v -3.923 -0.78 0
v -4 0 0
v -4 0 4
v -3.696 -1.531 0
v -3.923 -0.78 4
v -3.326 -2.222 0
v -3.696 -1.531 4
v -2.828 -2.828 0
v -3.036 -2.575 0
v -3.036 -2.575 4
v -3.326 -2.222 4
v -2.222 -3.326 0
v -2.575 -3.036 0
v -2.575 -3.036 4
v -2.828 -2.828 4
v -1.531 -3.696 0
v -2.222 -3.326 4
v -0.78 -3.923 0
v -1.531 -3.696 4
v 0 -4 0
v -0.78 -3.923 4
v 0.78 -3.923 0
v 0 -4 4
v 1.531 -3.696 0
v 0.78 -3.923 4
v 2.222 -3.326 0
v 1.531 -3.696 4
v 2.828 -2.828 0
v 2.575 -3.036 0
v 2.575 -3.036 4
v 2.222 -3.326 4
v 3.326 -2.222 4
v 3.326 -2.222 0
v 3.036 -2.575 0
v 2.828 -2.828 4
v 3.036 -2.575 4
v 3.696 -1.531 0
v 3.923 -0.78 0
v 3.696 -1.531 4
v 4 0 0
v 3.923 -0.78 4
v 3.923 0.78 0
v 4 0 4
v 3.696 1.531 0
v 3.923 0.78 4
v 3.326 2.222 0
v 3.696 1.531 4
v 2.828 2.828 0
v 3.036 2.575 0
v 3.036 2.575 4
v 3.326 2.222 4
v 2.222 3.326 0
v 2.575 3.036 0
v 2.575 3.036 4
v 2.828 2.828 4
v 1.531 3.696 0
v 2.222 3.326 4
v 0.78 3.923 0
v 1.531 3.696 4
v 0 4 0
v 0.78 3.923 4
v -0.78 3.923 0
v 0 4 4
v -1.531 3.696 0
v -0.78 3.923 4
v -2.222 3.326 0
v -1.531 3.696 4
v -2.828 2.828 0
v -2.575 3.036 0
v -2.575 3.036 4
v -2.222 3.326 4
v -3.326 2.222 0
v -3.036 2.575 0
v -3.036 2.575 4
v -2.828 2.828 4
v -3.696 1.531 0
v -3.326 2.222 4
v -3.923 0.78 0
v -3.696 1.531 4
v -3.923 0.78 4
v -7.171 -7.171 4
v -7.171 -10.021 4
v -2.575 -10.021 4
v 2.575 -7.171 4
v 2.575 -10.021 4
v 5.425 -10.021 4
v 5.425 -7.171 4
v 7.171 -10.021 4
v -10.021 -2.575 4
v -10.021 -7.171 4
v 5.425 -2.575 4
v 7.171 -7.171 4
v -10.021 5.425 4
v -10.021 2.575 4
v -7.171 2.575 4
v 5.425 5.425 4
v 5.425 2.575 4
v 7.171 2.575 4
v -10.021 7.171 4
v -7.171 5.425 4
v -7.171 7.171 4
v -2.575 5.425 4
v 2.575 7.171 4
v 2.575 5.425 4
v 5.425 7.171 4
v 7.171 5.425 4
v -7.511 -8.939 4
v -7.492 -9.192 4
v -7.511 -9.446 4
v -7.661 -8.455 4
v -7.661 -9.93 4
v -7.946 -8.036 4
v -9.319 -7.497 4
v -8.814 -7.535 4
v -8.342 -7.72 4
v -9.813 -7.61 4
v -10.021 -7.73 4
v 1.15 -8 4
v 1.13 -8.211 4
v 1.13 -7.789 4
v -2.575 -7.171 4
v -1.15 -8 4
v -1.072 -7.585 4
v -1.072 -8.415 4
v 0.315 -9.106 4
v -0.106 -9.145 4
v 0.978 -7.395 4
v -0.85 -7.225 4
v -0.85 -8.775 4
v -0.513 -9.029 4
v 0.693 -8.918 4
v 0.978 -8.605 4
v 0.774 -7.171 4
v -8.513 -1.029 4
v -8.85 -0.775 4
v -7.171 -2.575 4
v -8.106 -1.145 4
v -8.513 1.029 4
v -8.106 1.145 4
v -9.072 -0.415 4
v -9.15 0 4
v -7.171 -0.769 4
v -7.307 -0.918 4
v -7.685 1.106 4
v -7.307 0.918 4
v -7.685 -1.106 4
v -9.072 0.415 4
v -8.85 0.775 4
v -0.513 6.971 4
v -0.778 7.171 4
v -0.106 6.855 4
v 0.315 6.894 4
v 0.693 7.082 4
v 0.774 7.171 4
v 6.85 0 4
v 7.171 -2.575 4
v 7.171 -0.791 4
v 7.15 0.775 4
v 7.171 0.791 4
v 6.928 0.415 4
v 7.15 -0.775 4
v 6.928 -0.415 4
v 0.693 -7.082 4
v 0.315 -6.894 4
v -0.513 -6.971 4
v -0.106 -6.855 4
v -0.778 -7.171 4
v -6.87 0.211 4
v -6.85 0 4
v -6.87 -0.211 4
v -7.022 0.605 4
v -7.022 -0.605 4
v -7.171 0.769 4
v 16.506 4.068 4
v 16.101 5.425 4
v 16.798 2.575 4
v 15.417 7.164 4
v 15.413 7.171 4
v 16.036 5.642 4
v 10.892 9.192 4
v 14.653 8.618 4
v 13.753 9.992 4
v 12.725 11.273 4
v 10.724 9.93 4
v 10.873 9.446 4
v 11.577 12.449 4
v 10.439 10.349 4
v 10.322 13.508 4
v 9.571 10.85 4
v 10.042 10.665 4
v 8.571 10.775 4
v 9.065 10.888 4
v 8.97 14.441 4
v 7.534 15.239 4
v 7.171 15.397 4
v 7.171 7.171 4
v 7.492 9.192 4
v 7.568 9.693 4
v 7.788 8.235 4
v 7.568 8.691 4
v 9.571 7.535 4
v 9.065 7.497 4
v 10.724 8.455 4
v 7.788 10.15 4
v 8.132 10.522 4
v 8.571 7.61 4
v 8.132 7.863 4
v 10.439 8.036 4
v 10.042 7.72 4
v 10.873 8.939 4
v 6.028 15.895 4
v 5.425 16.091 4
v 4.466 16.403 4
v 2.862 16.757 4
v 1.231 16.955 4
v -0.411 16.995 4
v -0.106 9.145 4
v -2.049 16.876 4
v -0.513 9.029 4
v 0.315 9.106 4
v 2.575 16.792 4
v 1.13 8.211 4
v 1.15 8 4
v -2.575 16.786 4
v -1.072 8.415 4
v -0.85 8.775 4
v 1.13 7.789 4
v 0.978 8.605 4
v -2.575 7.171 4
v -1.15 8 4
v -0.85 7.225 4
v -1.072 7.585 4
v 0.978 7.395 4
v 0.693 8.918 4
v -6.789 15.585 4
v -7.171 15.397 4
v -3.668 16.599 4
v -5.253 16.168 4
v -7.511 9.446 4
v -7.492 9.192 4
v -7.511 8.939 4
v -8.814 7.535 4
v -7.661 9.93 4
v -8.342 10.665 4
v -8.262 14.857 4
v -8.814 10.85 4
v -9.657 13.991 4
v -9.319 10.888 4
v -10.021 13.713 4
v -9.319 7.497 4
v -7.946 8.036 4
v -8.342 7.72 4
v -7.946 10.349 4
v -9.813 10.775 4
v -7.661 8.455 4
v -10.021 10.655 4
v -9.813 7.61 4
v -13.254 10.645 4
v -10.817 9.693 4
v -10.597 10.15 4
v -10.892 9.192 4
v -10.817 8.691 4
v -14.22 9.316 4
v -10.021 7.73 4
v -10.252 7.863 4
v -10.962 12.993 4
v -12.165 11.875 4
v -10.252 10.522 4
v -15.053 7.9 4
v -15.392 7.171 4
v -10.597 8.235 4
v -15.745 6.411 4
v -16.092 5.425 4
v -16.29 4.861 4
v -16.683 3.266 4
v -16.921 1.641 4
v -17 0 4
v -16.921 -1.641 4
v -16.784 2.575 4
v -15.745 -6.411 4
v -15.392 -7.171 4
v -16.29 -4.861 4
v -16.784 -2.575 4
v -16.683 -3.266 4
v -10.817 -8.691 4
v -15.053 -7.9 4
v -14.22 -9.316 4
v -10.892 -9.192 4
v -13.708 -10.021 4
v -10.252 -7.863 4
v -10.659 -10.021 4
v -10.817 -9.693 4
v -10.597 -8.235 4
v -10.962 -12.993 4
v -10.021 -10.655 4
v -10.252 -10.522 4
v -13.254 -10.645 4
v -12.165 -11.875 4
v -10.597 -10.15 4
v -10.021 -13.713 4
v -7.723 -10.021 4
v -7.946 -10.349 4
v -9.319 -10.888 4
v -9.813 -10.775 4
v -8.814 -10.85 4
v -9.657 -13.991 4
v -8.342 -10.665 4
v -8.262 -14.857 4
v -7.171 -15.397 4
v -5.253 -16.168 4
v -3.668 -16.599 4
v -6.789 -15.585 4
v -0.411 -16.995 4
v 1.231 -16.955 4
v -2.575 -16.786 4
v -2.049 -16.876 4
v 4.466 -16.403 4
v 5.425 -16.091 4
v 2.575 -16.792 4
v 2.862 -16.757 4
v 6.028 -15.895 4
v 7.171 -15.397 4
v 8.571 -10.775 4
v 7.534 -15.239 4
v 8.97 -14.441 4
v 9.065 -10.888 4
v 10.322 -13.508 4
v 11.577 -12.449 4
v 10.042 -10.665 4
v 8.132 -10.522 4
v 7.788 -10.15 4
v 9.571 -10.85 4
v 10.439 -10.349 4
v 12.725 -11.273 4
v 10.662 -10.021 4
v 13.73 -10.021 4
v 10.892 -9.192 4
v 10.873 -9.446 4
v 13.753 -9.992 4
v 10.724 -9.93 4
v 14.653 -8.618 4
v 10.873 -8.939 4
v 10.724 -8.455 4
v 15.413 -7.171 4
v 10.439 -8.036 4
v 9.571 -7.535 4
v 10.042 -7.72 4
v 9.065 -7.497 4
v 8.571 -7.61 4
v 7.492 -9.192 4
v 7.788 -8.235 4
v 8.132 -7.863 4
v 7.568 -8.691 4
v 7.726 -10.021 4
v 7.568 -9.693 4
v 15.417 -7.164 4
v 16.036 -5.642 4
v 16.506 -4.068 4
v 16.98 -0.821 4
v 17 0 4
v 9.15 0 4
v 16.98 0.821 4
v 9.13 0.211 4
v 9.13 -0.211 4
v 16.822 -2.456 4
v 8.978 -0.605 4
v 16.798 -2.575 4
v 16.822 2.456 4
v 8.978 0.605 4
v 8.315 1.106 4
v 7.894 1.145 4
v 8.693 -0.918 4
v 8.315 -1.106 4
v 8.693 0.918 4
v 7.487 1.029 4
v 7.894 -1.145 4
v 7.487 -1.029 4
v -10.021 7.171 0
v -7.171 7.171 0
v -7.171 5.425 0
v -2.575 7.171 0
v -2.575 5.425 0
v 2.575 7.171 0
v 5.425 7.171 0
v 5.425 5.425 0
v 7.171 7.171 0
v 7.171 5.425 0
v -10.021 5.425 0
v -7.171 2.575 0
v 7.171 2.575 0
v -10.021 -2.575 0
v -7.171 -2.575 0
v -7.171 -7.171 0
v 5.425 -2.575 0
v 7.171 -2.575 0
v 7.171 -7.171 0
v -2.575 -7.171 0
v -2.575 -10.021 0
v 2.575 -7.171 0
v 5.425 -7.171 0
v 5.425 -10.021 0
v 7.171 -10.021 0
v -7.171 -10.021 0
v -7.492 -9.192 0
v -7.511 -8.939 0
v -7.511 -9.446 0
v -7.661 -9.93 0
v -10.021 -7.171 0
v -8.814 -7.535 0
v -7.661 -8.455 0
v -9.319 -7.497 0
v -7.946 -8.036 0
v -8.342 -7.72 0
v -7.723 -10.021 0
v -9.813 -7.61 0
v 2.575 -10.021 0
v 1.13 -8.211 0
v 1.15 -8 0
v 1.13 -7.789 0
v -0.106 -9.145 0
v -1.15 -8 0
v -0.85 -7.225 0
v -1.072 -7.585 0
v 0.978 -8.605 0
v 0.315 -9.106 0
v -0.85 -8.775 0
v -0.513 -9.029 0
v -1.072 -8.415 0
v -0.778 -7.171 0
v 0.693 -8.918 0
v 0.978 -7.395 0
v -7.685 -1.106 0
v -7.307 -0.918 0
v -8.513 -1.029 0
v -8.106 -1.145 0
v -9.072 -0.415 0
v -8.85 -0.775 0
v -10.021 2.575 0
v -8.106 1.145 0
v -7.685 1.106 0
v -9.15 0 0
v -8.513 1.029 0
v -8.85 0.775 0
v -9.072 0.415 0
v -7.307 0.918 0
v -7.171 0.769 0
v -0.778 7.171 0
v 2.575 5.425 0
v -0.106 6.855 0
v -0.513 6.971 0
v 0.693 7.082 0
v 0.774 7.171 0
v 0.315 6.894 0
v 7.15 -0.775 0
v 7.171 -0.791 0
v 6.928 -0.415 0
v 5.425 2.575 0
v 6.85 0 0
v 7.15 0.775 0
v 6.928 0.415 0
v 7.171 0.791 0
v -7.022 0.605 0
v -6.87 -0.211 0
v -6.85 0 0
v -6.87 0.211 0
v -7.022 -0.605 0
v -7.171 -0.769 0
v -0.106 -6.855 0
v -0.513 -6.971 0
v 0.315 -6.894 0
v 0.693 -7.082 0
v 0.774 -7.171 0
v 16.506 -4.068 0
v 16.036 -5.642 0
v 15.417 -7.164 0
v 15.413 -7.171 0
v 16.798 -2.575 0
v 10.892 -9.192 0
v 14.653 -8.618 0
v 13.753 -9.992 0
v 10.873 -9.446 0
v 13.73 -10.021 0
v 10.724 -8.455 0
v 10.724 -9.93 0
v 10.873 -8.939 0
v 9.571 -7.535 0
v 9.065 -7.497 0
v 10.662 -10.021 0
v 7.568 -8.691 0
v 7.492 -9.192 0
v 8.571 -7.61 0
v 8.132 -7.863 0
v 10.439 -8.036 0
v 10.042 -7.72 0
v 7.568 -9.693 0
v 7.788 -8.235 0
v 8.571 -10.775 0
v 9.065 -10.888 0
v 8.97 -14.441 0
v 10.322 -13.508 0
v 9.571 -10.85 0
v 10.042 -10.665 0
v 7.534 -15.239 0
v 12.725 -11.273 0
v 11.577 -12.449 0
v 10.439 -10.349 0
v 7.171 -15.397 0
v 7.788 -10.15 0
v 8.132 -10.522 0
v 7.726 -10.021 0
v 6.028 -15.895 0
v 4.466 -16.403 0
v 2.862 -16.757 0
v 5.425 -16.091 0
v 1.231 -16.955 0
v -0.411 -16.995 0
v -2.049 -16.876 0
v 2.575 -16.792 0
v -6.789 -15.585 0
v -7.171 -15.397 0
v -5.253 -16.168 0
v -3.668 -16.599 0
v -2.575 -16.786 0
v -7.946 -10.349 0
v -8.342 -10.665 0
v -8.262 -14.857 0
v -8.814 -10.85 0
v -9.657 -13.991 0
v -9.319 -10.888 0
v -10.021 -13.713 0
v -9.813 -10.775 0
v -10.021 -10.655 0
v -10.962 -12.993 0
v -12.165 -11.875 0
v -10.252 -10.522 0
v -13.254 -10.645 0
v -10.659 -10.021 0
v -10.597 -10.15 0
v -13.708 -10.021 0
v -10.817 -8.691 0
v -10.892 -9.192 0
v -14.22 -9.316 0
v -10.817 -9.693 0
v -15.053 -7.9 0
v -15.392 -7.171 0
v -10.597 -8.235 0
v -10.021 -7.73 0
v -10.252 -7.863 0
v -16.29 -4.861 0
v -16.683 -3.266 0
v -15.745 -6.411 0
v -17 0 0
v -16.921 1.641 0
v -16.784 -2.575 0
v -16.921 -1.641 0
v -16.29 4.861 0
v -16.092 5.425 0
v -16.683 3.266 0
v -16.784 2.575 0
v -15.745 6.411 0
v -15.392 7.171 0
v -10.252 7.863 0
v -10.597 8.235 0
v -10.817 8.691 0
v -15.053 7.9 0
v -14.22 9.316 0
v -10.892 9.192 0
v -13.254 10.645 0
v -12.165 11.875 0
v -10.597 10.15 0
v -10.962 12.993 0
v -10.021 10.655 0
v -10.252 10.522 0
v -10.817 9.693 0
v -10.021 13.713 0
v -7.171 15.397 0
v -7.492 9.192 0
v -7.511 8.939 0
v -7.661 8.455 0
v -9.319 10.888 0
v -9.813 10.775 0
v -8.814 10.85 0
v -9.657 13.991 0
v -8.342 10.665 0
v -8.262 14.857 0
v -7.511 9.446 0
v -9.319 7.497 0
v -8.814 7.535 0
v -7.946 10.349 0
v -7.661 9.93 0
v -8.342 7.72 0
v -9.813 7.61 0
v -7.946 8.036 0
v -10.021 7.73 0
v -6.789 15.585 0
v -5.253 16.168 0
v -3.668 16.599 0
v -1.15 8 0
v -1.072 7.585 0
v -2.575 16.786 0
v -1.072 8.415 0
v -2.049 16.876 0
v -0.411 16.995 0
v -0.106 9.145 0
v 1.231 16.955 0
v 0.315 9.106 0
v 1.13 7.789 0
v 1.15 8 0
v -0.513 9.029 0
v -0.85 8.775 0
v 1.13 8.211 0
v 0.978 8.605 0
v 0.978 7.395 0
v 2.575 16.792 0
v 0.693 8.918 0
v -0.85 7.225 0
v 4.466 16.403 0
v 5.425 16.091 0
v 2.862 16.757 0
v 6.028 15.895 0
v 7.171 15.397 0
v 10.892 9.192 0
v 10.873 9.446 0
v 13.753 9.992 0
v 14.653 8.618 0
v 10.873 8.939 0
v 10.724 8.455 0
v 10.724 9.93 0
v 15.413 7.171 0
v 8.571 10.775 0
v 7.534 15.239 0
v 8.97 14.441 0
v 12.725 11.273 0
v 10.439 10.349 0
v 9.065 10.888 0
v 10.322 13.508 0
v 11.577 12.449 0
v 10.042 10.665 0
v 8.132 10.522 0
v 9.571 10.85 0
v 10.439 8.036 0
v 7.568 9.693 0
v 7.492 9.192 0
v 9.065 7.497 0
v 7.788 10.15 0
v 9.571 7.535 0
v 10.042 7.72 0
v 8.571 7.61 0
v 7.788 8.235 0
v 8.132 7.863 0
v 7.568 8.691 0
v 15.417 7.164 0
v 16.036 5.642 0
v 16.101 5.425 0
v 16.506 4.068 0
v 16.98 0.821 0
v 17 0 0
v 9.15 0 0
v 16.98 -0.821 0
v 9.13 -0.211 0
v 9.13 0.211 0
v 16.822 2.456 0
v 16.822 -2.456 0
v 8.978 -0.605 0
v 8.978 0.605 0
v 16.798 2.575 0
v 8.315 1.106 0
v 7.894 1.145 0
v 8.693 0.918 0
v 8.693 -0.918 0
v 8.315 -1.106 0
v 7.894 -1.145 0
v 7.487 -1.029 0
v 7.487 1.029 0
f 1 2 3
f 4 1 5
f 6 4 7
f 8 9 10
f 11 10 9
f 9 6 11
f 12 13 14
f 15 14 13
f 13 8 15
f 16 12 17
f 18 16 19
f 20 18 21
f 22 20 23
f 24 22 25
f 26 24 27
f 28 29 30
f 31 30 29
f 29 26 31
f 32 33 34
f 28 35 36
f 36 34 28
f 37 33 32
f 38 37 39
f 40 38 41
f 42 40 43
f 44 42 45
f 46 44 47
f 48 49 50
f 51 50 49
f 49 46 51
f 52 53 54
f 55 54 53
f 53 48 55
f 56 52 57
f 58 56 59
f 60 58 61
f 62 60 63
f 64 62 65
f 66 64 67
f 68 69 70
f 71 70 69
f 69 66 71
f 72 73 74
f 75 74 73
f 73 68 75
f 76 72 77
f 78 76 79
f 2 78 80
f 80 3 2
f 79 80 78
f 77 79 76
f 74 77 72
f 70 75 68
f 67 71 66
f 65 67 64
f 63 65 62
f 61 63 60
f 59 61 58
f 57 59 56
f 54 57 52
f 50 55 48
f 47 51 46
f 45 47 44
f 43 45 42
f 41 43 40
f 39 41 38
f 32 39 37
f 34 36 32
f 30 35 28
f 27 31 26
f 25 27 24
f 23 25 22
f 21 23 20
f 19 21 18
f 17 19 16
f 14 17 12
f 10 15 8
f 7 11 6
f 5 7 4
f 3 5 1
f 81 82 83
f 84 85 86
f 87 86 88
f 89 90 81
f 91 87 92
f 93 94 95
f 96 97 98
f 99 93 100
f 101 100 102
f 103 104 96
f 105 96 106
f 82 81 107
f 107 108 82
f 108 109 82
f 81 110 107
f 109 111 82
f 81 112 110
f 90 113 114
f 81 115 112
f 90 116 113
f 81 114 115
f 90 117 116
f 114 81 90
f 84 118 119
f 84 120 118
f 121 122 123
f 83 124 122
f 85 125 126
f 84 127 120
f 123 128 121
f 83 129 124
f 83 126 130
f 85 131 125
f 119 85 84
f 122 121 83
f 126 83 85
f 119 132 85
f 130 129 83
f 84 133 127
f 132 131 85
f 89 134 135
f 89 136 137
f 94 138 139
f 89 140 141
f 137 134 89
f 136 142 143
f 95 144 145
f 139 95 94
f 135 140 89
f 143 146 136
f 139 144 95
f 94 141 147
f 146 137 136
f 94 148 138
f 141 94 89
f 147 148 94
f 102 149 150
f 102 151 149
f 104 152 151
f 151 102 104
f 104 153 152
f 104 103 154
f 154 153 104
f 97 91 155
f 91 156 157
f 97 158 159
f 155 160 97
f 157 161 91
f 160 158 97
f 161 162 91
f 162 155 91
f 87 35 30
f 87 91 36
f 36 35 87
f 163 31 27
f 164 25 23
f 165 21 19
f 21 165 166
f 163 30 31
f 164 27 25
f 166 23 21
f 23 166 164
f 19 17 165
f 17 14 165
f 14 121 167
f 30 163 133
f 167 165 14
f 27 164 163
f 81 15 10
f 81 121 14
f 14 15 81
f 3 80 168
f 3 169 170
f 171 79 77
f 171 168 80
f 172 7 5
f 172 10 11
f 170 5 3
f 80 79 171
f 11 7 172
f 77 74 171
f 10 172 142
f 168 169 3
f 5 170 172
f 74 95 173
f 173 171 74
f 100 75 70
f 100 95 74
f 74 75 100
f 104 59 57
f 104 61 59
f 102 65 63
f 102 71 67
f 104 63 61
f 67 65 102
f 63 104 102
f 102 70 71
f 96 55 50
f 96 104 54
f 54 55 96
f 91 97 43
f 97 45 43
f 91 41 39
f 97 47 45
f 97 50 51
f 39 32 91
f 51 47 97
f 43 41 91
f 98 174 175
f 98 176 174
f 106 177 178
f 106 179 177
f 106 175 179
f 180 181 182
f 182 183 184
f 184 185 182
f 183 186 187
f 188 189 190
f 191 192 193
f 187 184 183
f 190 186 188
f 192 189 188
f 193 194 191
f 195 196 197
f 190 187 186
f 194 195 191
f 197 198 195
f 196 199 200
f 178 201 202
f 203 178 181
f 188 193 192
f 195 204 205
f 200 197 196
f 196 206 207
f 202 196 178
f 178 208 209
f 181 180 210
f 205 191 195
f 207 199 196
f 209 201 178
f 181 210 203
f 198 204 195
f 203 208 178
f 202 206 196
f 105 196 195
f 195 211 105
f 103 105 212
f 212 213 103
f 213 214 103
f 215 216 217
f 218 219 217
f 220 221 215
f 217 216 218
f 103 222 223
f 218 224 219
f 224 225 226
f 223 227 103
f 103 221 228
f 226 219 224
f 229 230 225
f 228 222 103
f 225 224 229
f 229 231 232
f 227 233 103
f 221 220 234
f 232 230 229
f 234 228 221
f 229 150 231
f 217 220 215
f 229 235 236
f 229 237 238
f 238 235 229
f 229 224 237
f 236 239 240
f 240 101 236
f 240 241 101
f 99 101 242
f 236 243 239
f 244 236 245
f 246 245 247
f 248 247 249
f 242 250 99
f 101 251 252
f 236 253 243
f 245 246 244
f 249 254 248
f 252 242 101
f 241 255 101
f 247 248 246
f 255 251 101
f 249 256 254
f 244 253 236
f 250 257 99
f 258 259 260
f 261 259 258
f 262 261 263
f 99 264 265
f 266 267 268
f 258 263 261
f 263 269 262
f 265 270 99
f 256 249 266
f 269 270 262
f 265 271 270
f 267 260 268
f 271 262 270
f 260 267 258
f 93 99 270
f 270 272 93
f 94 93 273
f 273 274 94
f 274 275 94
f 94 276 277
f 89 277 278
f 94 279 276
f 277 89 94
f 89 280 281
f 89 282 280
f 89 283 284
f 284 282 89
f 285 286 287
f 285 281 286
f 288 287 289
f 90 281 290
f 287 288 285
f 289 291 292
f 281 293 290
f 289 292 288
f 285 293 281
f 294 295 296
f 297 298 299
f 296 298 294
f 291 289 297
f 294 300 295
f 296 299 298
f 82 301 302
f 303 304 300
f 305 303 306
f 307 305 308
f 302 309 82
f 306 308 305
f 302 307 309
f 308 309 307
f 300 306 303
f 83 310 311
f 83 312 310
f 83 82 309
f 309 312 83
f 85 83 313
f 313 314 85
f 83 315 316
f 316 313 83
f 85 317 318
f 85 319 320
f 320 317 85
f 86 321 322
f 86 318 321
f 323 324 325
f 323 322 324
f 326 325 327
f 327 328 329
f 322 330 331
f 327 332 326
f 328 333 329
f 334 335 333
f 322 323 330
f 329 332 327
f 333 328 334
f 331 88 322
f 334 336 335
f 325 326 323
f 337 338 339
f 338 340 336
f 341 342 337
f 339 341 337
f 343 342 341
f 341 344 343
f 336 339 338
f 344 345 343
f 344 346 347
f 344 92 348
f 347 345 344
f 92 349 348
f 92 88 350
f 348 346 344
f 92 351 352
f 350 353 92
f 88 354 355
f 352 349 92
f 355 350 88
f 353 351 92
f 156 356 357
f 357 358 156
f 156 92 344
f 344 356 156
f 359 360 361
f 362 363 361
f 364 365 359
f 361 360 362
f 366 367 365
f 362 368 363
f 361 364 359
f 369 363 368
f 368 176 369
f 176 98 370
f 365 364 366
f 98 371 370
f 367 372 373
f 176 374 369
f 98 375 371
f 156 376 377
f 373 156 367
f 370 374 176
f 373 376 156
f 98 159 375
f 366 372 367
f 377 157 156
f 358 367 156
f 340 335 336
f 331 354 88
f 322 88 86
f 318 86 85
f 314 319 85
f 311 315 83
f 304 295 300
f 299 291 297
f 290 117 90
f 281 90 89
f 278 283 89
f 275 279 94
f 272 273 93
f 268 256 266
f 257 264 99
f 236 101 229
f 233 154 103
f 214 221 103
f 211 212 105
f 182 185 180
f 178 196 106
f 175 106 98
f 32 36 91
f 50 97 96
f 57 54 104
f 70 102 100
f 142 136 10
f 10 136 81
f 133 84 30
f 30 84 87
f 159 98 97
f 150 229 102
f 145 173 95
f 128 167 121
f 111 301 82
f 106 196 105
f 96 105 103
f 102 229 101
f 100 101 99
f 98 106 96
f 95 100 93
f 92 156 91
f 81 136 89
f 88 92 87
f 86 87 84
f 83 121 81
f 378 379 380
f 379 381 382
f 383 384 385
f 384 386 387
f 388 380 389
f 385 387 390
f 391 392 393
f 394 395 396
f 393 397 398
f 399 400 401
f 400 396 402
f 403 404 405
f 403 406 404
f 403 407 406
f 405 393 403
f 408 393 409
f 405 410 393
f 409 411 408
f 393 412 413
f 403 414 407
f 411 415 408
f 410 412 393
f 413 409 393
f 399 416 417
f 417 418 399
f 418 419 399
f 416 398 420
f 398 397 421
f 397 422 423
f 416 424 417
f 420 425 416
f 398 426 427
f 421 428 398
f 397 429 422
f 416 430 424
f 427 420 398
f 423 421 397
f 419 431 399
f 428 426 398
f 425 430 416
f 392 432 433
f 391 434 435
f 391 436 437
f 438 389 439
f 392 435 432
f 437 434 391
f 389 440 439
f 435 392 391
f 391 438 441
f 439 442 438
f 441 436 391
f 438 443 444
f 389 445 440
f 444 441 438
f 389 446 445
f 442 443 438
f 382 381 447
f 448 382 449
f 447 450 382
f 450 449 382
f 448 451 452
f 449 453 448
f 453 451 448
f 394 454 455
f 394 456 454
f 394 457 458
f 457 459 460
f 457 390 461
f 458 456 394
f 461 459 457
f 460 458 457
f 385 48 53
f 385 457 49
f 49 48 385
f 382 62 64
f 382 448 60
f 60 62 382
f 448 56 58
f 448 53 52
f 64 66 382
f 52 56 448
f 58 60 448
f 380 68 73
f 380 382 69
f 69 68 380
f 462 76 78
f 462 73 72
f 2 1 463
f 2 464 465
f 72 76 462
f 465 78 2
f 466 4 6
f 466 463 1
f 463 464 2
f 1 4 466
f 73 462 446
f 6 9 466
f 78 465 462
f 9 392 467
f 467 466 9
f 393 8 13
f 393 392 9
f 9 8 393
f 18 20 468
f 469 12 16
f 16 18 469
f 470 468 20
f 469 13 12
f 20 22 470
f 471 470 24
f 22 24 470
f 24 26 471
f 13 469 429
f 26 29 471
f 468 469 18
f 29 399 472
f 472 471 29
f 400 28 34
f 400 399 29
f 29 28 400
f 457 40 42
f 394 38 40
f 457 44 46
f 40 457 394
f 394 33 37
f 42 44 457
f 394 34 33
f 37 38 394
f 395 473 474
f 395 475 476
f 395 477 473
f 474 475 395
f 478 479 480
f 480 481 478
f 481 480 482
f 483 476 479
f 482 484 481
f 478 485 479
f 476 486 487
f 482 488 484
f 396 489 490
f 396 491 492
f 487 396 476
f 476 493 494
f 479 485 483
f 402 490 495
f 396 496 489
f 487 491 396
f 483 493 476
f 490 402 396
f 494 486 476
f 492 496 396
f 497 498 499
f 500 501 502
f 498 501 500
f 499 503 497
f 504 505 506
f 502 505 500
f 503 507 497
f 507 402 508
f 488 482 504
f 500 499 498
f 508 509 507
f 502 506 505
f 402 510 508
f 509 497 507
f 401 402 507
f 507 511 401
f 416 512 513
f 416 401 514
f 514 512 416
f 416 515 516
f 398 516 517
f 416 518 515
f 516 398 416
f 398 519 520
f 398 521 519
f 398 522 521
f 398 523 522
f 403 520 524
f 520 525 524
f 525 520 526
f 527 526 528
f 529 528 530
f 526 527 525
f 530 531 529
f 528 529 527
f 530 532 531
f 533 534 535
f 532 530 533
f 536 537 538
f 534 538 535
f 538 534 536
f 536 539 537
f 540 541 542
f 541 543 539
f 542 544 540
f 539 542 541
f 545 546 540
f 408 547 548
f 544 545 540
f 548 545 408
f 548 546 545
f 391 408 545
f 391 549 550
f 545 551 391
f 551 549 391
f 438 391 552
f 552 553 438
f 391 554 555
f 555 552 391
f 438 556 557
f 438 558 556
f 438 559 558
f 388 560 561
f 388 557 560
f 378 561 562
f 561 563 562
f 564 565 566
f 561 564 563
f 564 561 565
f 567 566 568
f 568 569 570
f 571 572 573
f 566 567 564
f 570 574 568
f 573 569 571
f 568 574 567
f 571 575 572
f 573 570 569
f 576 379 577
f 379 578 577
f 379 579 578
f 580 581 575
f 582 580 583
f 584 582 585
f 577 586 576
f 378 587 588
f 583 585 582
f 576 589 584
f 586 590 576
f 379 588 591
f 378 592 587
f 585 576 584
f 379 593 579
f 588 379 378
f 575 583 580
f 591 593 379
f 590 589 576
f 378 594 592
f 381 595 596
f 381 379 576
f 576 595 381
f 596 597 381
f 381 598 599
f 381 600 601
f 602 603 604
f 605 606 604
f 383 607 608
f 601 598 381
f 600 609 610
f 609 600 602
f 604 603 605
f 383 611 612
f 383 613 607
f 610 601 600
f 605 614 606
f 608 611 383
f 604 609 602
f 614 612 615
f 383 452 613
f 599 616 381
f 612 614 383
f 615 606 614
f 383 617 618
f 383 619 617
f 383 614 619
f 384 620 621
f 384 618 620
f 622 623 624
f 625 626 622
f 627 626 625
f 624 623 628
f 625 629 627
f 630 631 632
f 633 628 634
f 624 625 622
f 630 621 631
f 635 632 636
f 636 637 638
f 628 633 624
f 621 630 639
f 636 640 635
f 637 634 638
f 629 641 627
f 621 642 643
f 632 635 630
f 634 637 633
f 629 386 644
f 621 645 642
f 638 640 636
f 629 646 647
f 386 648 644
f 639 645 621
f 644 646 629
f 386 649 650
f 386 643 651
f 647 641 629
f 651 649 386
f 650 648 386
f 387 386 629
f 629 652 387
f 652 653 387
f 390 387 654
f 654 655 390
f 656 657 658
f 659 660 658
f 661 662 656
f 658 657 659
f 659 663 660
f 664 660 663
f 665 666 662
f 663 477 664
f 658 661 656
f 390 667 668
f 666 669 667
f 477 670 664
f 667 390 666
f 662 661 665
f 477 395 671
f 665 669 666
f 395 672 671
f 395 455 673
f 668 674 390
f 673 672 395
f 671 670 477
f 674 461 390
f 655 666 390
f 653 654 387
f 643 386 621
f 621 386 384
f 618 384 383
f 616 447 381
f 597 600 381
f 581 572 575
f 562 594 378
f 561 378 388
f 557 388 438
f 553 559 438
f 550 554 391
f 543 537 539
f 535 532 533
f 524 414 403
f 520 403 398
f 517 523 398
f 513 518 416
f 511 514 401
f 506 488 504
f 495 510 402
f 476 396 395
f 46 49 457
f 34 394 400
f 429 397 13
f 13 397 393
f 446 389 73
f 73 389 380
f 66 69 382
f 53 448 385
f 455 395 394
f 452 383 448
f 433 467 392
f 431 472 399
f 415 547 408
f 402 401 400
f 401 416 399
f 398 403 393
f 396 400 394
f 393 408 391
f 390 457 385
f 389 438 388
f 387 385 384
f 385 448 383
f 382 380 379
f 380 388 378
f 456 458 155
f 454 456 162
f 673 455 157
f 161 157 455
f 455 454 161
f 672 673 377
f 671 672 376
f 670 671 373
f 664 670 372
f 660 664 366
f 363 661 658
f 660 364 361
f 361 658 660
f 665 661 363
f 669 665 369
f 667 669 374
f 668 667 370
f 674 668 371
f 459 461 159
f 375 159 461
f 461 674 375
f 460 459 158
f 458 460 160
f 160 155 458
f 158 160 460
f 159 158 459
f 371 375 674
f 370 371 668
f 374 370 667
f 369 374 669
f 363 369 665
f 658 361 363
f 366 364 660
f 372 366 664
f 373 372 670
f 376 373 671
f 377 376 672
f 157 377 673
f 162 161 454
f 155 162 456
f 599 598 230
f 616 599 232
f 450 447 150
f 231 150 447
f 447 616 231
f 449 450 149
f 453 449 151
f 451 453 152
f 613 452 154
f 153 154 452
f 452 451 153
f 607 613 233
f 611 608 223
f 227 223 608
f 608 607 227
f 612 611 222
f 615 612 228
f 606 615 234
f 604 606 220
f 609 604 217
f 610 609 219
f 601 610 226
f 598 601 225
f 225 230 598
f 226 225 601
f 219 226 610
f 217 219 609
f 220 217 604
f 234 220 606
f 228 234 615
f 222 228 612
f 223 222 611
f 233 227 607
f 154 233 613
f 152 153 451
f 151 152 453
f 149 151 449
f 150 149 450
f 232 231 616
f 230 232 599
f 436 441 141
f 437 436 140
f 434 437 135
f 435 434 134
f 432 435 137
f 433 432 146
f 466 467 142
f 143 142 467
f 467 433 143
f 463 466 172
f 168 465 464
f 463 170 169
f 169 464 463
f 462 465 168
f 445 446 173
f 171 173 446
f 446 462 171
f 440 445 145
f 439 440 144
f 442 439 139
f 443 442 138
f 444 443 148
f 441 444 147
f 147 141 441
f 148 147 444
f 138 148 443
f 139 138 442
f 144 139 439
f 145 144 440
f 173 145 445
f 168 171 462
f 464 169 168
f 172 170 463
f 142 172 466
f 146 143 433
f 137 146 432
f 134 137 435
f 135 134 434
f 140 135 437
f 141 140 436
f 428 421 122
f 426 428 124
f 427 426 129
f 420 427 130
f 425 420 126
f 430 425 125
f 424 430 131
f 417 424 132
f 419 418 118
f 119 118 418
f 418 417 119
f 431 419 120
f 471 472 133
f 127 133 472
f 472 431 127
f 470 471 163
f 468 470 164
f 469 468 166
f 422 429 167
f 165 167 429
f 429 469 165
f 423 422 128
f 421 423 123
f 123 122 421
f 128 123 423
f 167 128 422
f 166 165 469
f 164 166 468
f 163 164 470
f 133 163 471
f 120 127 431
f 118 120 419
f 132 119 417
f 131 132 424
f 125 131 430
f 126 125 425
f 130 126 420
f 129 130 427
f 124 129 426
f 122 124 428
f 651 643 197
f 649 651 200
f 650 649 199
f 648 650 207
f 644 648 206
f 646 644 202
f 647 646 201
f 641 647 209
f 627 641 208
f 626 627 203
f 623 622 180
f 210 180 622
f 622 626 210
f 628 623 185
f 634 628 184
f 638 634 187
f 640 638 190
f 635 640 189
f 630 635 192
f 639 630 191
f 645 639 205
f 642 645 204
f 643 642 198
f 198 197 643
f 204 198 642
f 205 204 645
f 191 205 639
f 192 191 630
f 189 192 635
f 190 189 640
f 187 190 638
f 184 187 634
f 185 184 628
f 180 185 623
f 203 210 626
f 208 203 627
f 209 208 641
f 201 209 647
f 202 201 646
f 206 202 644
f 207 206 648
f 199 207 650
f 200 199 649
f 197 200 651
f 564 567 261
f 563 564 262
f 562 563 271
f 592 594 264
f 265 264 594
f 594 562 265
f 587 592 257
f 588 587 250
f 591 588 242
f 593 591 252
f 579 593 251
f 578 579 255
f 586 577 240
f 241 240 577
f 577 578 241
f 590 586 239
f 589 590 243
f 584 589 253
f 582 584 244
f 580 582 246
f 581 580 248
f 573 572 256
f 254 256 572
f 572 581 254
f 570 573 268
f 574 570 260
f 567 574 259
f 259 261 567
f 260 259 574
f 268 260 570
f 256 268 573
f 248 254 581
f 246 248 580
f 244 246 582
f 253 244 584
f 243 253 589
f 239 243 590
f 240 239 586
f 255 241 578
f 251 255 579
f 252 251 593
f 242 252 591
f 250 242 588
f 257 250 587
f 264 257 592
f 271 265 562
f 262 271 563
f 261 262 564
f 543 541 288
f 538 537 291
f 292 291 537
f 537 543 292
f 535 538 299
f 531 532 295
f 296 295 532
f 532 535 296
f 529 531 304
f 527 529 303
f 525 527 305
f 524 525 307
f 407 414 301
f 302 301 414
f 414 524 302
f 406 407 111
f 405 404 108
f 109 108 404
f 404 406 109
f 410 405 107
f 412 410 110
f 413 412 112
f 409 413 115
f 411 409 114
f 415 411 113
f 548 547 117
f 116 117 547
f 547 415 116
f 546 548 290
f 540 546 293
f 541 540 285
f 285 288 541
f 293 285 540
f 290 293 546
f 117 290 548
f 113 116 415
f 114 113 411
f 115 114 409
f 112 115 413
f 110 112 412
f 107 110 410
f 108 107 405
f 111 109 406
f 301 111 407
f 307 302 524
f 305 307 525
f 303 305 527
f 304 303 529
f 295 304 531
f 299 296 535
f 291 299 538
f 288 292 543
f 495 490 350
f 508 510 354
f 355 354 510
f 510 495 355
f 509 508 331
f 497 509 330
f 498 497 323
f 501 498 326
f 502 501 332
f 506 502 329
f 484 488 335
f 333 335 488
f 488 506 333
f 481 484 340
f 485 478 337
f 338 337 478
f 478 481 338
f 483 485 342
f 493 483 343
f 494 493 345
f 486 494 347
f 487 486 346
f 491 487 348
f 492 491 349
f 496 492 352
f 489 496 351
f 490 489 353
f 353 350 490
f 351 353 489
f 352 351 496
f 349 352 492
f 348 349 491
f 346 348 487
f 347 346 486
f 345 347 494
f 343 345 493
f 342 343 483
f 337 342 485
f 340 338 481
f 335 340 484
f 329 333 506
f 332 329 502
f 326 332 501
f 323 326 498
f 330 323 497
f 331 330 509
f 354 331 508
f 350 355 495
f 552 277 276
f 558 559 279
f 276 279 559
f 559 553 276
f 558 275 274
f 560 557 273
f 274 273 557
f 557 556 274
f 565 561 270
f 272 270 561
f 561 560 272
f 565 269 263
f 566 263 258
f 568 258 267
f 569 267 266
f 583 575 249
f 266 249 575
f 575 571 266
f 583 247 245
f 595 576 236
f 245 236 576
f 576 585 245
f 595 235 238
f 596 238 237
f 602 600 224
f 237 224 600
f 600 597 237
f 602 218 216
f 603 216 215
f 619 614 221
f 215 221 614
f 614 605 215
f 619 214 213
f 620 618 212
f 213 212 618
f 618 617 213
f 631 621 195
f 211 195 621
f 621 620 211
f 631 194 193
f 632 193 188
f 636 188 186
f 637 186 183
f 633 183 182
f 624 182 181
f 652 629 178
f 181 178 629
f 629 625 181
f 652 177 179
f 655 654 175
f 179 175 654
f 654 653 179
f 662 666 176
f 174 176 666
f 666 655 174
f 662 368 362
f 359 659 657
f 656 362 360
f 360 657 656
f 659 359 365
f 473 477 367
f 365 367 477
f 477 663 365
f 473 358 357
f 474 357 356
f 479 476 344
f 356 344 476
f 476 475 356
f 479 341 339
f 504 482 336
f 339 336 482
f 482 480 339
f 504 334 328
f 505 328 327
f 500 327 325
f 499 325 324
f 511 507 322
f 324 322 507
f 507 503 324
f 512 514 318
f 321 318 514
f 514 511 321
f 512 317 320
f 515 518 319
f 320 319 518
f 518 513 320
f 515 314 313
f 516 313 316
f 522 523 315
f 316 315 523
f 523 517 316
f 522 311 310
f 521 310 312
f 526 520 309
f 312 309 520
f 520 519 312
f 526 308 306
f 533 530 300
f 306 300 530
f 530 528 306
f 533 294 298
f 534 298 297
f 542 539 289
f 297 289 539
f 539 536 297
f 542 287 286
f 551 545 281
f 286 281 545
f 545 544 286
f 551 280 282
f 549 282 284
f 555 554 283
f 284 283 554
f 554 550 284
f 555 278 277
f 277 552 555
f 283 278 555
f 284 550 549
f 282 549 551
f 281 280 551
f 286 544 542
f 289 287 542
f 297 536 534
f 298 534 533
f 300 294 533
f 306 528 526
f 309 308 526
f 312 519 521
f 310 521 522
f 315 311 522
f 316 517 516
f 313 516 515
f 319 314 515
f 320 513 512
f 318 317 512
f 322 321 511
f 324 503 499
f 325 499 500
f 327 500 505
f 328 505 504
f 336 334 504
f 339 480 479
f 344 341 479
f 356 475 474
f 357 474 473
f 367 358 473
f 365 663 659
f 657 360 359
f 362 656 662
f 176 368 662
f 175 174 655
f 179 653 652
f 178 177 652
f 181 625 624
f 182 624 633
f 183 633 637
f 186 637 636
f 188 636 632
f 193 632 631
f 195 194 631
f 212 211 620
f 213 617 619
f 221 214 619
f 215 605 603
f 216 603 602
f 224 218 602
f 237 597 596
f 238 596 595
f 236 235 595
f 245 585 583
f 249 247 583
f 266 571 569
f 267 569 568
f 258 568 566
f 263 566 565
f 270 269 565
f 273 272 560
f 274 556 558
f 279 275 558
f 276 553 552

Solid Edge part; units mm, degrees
sketch "Sketch1" plane through (0, 0, 0) normal (0, 0, 1) x (1, 0, 0)
  circle A0 centre (0, 0) radius 17
  circle A1 centre (0, 0) radius 4
  circle A2 centre (8, 0) radius 1.15
  circle A3 centre (0, 8) radius 1.15
  circle A4 centre (-8, 0) radius 1.15
  circle A5 centre (0, -8) radius 1.15
  circle A6 centre (9.1924, 9.1924) radius 1.7
  circle A7 centre (-9.1924, 9.1924) radius 1.7
  circle A8 centre (-9.1924, -9.1924) radius 1.7
  circle A9 centre (9.1924, -9.1924) radius 1.7
extrude "Protrusion1" add sketch "Sketch1" along normal blind 4
